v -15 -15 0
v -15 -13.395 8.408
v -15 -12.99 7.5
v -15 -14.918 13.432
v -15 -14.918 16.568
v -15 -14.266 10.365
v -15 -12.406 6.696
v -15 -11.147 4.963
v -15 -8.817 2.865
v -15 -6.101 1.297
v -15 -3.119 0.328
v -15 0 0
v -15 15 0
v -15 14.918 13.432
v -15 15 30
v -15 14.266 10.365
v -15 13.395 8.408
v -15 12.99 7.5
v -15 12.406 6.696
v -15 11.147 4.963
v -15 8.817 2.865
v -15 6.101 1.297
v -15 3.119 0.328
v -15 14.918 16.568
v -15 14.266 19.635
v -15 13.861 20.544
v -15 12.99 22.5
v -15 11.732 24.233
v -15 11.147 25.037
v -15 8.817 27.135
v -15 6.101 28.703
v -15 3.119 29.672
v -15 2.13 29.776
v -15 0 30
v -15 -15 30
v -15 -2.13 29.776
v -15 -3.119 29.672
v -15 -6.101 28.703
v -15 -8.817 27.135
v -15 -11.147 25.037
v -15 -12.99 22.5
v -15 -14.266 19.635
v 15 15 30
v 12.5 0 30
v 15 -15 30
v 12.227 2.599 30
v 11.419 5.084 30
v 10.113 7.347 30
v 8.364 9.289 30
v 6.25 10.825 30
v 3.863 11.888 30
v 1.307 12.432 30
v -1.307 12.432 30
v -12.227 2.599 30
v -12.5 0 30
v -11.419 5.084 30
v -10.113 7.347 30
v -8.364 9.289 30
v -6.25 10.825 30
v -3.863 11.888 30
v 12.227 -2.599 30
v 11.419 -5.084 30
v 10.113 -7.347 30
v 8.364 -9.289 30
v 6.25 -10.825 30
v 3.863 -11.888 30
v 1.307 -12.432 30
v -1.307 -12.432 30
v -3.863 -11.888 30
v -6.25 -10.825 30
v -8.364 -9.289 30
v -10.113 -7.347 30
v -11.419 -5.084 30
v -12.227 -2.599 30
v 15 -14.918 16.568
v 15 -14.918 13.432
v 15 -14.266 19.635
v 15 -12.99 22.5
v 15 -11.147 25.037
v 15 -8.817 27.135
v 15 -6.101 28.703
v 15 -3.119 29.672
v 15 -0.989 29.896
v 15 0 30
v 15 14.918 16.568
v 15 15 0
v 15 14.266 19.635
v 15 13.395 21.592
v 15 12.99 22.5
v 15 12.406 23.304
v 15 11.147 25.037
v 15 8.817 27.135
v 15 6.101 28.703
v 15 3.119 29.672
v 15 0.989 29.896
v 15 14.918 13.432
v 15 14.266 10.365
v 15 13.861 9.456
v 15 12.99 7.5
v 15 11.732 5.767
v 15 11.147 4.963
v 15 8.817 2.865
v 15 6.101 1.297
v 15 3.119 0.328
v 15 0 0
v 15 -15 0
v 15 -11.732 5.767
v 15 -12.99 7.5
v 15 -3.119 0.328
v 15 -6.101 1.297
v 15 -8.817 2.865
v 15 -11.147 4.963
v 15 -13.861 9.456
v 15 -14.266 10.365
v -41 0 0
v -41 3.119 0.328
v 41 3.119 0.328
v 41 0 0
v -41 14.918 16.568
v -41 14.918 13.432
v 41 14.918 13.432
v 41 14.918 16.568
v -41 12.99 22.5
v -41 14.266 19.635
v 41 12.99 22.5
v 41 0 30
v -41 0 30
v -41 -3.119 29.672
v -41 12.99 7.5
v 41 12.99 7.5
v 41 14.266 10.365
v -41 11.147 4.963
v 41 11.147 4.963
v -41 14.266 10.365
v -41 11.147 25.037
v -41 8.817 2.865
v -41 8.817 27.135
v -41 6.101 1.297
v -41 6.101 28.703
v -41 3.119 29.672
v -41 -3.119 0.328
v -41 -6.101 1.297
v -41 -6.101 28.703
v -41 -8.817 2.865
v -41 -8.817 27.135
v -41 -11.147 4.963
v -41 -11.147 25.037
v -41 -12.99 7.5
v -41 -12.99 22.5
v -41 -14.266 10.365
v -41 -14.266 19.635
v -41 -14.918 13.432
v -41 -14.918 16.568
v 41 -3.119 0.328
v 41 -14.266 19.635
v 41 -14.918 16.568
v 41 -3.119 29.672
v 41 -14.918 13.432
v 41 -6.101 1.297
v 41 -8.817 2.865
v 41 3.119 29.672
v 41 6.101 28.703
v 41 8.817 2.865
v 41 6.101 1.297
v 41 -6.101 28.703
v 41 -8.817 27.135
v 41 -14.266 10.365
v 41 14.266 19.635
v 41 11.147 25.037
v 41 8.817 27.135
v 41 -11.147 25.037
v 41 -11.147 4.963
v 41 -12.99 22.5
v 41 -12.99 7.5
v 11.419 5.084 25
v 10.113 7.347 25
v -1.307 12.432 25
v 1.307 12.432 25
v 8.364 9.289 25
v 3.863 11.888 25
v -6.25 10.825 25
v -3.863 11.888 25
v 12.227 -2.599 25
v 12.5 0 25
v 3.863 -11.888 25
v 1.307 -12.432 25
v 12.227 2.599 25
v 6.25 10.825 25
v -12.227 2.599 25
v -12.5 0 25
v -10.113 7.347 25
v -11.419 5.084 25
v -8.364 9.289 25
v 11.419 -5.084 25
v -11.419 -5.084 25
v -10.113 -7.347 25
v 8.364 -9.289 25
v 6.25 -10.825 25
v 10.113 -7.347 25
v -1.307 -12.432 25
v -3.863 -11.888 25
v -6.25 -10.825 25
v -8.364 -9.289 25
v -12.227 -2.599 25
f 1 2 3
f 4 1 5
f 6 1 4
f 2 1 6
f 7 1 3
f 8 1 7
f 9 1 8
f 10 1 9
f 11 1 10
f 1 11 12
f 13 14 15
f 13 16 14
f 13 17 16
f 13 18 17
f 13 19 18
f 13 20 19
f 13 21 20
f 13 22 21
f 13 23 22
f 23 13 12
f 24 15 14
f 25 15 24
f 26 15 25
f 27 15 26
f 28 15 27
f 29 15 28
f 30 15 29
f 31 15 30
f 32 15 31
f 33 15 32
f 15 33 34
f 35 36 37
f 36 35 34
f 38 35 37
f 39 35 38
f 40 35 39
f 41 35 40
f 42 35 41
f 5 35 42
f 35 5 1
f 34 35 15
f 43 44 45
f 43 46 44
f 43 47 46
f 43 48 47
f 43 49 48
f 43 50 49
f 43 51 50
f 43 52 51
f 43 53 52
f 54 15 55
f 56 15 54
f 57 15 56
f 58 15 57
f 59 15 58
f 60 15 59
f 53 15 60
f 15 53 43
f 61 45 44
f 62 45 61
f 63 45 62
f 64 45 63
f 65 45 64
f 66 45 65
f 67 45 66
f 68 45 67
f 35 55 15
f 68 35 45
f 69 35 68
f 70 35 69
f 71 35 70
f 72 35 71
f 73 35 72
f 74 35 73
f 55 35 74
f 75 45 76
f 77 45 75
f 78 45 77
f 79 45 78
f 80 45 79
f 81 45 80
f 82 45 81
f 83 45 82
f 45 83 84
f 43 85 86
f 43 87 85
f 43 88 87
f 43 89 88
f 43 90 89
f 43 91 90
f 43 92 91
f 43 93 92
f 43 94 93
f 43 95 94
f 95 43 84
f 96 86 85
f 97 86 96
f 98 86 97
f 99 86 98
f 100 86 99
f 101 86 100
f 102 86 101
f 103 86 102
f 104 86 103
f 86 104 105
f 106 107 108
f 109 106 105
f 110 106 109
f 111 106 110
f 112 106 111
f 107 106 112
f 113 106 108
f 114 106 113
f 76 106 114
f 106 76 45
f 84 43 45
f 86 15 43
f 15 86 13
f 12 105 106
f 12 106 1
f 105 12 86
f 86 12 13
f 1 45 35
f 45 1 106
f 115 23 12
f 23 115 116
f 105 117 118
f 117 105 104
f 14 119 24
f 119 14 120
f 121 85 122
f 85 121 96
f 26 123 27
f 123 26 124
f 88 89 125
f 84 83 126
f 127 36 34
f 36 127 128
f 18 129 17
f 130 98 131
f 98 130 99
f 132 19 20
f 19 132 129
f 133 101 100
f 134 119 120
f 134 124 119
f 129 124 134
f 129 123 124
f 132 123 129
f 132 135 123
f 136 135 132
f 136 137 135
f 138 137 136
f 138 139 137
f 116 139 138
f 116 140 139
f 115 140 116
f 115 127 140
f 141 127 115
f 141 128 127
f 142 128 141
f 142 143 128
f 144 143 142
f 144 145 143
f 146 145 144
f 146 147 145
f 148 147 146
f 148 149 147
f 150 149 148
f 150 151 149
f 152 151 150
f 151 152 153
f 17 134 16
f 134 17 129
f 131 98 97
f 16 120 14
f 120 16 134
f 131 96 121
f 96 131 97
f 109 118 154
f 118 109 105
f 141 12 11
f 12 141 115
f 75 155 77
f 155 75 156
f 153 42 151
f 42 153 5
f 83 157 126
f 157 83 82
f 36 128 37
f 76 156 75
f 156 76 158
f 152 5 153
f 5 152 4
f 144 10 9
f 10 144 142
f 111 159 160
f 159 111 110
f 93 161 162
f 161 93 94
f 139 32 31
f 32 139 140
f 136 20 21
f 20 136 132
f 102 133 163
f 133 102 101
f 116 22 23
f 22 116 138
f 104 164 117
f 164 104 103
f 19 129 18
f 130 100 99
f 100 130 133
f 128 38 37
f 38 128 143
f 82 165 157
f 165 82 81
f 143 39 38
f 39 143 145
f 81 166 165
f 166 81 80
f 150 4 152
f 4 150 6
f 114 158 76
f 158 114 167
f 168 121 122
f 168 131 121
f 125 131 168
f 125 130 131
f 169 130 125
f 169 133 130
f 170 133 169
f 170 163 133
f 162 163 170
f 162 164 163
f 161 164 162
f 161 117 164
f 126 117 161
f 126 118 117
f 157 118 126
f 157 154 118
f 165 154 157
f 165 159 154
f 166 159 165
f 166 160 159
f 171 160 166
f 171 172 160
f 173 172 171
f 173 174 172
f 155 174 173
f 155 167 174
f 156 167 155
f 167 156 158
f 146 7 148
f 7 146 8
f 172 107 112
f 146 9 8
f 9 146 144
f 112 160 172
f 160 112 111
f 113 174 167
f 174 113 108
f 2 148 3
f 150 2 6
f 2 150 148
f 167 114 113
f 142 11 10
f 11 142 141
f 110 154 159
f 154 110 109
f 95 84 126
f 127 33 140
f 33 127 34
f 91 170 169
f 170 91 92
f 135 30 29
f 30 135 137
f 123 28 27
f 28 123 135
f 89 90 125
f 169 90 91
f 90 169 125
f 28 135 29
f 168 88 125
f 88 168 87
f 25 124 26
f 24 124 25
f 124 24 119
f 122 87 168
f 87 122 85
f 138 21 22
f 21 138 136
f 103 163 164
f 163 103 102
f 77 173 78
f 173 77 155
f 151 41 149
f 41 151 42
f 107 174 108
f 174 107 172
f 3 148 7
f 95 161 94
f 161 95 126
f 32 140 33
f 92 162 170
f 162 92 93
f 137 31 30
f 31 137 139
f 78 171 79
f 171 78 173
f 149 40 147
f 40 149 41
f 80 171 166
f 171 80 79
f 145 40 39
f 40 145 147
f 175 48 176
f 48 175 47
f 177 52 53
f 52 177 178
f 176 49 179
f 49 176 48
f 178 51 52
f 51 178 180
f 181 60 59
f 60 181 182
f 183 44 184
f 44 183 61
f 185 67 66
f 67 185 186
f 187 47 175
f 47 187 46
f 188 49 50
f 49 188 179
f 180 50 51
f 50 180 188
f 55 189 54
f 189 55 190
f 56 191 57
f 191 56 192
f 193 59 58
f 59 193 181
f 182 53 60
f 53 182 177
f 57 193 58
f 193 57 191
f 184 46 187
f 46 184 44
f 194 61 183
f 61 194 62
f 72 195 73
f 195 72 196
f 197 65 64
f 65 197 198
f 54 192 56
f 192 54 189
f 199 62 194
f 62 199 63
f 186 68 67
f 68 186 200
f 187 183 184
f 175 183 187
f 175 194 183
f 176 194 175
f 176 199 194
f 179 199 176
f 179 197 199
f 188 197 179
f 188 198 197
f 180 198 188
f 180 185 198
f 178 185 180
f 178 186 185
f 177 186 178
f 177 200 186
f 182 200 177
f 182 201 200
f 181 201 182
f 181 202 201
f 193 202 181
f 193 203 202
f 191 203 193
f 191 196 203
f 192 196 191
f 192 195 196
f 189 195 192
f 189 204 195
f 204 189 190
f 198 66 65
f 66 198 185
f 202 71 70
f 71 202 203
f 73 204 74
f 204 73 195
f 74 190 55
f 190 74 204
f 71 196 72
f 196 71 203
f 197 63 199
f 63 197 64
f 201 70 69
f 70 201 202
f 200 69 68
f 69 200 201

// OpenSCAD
cube_size = 30; // [10:Small,20:Medium,30:Large]

hole_diameter = 25; 
hole_radius = hole_diameter/2;

// How deep should the center hole be?
hole_depth = 5; // [0,1,5,50]

show_wheels = "yes"; // [yes,no]

// How thick should the side wheels be?
wheel_thickness = 26; // [1:40]

// ignore this variable!
// foo=1;

// don't turn functions into params!
function BEZ03(u) = pow((1-u), 3);

// ignore variable values
bing = 3+4;
baz = 3 / hole_depth;

difference() {
  union() {
    translate([0, 0, cube_size/2]) cube([cube_size,cube_size,cube_size], center=true);
    if (show_wheels == "yes") {
      translate([0, 0, cube_size/2]) rotate([0, 90, 0]) {
        cylinder(r=cube_size/2, h=cube_size+(wheel_thickness*2), center=true);
      }
    }
  }
  translate([0, 0, cube_size-hole_depth]) cylinder(r=hole_radius, h=hole_depth);
}
        
